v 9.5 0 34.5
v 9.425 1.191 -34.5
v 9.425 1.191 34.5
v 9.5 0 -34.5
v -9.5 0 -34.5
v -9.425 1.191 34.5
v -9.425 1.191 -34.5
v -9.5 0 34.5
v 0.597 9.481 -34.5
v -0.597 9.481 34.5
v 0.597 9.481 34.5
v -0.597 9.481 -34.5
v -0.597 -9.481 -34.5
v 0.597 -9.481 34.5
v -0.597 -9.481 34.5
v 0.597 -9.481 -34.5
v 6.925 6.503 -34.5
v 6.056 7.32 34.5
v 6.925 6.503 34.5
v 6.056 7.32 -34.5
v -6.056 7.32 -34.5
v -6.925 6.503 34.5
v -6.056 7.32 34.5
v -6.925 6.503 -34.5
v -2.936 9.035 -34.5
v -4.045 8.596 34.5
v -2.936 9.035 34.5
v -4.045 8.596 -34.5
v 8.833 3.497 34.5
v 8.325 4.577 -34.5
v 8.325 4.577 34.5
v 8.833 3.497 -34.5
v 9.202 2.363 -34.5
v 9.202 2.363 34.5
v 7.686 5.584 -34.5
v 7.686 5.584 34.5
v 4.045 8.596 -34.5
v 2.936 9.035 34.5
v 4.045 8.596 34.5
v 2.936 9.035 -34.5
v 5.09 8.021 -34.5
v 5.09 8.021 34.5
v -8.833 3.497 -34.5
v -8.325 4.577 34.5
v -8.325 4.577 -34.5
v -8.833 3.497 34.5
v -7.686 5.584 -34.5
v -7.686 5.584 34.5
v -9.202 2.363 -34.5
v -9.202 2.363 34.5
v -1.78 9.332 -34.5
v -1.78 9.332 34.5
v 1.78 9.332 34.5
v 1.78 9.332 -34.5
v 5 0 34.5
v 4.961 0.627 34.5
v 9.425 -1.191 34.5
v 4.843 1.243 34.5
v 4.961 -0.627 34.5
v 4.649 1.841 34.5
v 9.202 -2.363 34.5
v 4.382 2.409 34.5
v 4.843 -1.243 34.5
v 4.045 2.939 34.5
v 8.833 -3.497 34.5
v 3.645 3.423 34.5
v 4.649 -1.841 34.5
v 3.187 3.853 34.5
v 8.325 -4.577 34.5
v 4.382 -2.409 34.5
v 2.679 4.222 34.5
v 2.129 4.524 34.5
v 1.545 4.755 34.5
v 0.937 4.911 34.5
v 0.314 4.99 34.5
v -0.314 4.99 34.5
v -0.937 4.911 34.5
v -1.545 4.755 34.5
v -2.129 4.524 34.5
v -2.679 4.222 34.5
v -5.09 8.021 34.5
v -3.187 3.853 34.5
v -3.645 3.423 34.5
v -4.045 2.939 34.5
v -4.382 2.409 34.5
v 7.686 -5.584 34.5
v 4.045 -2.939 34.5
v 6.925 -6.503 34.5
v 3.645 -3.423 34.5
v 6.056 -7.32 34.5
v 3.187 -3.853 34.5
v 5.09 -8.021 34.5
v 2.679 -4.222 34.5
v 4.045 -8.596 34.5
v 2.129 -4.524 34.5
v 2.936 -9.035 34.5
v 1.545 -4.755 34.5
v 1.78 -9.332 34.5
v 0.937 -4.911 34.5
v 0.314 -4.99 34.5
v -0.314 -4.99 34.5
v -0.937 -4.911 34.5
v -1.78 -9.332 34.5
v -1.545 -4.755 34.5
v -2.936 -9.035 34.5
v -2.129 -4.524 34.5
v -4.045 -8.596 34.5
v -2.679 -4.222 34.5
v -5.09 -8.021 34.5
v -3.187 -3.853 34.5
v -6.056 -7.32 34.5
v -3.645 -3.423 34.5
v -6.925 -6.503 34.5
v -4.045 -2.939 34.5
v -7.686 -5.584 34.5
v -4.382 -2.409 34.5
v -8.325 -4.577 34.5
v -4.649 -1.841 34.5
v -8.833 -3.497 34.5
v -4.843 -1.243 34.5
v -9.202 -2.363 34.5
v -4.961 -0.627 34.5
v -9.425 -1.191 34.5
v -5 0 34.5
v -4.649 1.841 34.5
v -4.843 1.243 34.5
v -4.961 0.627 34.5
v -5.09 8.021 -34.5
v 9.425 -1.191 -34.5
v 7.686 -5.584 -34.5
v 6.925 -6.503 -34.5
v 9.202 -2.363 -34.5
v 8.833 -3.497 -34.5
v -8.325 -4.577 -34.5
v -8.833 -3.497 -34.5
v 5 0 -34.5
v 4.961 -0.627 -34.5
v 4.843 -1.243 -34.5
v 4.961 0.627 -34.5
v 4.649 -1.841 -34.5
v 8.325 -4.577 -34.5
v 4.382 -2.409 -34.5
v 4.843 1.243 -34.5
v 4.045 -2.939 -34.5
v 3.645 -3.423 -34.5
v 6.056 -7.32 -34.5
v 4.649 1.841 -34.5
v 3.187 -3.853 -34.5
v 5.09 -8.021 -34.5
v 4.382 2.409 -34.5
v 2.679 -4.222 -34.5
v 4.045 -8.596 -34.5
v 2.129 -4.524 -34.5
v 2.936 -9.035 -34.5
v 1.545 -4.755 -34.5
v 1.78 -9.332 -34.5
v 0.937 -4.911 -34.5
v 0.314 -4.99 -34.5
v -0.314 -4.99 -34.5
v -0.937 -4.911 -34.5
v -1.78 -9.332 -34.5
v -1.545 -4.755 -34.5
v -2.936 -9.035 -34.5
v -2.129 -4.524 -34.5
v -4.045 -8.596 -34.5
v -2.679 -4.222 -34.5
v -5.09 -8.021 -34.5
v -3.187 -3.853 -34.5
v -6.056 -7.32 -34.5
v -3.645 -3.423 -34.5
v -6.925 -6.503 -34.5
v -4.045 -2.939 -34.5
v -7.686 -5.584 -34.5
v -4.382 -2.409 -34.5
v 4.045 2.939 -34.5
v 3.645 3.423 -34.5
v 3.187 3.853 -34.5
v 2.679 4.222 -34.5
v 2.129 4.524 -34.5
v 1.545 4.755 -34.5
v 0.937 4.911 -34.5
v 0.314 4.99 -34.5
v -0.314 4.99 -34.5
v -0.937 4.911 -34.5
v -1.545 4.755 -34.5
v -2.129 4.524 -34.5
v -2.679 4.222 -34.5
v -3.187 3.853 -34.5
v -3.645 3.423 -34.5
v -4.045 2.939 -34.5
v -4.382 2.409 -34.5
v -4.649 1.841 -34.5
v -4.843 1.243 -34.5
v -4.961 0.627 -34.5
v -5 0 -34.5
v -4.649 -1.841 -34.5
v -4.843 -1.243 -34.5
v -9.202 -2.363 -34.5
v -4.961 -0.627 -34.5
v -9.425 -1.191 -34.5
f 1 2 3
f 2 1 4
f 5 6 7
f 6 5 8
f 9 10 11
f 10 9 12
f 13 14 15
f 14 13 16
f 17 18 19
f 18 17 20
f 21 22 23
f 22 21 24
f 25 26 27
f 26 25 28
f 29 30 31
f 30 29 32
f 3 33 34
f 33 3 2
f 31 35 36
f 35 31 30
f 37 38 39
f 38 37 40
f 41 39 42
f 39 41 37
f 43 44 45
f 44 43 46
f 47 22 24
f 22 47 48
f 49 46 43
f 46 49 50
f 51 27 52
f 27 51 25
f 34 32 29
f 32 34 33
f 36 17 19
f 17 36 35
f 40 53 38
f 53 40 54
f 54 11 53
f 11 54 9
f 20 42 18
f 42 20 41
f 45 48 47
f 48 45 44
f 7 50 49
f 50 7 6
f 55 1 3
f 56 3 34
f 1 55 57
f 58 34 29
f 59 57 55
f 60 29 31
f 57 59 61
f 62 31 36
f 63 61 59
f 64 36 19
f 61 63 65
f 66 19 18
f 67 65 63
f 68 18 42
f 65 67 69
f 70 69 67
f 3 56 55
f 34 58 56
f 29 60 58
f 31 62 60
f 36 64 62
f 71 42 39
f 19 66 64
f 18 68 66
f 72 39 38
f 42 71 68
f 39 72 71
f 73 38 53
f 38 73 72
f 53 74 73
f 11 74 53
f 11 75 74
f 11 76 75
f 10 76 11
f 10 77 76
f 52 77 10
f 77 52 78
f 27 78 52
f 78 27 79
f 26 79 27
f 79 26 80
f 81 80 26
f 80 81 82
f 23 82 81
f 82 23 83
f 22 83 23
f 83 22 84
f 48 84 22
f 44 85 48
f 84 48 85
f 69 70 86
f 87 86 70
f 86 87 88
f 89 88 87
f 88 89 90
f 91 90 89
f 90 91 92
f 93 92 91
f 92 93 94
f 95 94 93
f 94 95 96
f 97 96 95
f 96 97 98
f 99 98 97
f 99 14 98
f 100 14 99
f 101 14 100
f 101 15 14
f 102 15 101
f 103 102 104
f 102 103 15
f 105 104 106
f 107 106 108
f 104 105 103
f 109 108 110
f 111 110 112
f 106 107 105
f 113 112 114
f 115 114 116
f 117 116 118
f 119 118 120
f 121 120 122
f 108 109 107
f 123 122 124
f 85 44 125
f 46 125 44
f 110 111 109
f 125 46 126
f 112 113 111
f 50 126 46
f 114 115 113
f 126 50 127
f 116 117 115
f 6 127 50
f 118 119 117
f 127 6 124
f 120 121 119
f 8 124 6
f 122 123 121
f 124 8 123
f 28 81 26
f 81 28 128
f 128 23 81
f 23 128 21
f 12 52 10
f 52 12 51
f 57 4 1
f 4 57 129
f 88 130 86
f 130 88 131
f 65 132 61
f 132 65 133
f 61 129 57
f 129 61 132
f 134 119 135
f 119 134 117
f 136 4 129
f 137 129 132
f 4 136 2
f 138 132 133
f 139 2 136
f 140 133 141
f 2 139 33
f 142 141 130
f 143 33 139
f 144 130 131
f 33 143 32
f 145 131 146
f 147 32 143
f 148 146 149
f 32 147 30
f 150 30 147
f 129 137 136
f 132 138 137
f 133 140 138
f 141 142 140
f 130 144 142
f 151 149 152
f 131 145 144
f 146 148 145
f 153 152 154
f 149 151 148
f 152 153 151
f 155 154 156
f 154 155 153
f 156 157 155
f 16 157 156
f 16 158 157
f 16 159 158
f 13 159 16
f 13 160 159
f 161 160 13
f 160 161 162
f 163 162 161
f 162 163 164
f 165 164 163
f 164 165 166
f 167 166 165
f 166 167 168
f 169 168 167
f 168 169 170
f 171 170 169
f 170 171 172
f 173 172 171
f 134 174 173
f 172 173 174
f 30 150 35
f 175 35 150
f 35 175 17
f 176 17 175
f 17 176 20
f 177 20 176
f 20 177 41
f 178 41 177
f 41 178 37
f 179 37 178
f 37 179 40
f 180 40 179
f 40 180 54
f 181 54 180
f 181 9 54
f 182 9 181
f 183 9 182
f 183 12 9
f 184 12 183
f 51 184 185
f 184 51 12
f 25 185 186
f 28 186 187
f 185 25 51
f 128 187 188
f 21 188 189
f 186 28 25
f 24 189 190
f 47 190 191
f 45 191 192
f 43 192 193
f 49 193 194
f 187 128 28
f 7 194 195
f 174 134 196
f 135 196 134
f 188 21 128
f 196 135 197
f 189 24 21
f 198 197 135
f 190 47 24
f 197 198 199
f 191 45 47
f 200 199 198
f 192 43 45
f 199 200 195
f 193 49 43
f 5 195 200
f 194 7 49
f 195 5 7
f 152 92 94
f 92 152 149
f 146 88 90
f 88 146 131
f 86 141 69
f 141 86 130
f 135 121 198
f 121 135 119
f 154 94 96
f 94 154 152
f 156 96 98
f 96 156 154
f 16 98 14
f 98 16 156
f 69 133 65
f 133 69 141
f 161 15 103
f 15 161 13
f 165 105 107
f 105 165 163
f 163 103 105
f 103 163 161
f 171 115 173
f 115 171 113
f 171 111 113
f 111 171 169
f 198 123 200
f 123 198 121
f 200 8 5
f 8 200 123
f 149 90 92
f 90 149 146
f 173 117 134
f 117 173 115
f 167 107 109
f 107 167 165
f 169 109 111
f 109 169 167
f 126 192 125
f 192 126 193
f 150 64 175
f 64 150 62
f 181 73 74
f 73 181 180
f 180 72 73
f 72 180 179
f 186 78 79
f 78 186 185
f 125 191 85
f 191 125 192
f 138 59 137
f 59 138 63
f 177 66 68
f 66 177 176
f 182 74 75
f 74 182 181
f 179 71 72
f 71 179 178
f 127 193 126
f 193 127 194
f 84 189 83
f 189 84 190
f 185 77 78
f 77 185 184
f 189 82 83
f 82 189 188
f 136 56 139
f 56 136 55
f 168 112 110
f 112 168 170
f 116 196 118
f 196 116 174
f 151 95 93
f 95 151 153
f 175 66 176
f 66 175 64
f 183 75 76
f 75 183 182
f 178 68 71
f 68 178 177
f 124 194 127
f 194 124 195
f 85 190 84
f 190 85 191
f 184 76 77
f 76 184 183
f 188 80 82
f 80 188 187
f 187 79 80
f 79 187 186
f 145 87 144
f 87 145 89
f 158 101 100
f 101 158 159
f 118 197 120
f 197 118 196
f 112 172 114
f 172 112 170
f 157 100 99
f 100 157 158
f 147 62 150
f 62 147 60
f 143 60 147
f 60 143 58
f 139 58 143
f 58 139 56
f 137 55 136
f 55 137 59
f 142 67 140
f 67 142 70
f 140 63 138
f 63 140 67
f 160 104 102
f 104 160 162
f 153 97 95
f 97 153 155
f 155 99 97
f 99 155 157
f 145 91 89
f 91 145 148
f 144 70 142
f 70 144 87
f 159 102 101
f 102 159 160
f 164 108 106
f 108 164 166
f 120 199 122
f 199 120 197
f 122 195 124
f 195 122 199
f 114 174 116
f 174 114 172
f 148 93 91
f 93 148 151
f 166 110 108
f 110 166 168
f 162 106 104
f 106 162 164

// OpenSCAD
$fn = 50;


difference() {
	union() {
		translate(v = [0, 0, -34.5000000000]) {
			cylinder(h = 69, r = 9.5000000000);
		}
	}
	union() {
		translate(v = [0, 0, -100.0000000000]) {
			cylinder(h = 200, r = 5.0000000000);
		}
	}
}
